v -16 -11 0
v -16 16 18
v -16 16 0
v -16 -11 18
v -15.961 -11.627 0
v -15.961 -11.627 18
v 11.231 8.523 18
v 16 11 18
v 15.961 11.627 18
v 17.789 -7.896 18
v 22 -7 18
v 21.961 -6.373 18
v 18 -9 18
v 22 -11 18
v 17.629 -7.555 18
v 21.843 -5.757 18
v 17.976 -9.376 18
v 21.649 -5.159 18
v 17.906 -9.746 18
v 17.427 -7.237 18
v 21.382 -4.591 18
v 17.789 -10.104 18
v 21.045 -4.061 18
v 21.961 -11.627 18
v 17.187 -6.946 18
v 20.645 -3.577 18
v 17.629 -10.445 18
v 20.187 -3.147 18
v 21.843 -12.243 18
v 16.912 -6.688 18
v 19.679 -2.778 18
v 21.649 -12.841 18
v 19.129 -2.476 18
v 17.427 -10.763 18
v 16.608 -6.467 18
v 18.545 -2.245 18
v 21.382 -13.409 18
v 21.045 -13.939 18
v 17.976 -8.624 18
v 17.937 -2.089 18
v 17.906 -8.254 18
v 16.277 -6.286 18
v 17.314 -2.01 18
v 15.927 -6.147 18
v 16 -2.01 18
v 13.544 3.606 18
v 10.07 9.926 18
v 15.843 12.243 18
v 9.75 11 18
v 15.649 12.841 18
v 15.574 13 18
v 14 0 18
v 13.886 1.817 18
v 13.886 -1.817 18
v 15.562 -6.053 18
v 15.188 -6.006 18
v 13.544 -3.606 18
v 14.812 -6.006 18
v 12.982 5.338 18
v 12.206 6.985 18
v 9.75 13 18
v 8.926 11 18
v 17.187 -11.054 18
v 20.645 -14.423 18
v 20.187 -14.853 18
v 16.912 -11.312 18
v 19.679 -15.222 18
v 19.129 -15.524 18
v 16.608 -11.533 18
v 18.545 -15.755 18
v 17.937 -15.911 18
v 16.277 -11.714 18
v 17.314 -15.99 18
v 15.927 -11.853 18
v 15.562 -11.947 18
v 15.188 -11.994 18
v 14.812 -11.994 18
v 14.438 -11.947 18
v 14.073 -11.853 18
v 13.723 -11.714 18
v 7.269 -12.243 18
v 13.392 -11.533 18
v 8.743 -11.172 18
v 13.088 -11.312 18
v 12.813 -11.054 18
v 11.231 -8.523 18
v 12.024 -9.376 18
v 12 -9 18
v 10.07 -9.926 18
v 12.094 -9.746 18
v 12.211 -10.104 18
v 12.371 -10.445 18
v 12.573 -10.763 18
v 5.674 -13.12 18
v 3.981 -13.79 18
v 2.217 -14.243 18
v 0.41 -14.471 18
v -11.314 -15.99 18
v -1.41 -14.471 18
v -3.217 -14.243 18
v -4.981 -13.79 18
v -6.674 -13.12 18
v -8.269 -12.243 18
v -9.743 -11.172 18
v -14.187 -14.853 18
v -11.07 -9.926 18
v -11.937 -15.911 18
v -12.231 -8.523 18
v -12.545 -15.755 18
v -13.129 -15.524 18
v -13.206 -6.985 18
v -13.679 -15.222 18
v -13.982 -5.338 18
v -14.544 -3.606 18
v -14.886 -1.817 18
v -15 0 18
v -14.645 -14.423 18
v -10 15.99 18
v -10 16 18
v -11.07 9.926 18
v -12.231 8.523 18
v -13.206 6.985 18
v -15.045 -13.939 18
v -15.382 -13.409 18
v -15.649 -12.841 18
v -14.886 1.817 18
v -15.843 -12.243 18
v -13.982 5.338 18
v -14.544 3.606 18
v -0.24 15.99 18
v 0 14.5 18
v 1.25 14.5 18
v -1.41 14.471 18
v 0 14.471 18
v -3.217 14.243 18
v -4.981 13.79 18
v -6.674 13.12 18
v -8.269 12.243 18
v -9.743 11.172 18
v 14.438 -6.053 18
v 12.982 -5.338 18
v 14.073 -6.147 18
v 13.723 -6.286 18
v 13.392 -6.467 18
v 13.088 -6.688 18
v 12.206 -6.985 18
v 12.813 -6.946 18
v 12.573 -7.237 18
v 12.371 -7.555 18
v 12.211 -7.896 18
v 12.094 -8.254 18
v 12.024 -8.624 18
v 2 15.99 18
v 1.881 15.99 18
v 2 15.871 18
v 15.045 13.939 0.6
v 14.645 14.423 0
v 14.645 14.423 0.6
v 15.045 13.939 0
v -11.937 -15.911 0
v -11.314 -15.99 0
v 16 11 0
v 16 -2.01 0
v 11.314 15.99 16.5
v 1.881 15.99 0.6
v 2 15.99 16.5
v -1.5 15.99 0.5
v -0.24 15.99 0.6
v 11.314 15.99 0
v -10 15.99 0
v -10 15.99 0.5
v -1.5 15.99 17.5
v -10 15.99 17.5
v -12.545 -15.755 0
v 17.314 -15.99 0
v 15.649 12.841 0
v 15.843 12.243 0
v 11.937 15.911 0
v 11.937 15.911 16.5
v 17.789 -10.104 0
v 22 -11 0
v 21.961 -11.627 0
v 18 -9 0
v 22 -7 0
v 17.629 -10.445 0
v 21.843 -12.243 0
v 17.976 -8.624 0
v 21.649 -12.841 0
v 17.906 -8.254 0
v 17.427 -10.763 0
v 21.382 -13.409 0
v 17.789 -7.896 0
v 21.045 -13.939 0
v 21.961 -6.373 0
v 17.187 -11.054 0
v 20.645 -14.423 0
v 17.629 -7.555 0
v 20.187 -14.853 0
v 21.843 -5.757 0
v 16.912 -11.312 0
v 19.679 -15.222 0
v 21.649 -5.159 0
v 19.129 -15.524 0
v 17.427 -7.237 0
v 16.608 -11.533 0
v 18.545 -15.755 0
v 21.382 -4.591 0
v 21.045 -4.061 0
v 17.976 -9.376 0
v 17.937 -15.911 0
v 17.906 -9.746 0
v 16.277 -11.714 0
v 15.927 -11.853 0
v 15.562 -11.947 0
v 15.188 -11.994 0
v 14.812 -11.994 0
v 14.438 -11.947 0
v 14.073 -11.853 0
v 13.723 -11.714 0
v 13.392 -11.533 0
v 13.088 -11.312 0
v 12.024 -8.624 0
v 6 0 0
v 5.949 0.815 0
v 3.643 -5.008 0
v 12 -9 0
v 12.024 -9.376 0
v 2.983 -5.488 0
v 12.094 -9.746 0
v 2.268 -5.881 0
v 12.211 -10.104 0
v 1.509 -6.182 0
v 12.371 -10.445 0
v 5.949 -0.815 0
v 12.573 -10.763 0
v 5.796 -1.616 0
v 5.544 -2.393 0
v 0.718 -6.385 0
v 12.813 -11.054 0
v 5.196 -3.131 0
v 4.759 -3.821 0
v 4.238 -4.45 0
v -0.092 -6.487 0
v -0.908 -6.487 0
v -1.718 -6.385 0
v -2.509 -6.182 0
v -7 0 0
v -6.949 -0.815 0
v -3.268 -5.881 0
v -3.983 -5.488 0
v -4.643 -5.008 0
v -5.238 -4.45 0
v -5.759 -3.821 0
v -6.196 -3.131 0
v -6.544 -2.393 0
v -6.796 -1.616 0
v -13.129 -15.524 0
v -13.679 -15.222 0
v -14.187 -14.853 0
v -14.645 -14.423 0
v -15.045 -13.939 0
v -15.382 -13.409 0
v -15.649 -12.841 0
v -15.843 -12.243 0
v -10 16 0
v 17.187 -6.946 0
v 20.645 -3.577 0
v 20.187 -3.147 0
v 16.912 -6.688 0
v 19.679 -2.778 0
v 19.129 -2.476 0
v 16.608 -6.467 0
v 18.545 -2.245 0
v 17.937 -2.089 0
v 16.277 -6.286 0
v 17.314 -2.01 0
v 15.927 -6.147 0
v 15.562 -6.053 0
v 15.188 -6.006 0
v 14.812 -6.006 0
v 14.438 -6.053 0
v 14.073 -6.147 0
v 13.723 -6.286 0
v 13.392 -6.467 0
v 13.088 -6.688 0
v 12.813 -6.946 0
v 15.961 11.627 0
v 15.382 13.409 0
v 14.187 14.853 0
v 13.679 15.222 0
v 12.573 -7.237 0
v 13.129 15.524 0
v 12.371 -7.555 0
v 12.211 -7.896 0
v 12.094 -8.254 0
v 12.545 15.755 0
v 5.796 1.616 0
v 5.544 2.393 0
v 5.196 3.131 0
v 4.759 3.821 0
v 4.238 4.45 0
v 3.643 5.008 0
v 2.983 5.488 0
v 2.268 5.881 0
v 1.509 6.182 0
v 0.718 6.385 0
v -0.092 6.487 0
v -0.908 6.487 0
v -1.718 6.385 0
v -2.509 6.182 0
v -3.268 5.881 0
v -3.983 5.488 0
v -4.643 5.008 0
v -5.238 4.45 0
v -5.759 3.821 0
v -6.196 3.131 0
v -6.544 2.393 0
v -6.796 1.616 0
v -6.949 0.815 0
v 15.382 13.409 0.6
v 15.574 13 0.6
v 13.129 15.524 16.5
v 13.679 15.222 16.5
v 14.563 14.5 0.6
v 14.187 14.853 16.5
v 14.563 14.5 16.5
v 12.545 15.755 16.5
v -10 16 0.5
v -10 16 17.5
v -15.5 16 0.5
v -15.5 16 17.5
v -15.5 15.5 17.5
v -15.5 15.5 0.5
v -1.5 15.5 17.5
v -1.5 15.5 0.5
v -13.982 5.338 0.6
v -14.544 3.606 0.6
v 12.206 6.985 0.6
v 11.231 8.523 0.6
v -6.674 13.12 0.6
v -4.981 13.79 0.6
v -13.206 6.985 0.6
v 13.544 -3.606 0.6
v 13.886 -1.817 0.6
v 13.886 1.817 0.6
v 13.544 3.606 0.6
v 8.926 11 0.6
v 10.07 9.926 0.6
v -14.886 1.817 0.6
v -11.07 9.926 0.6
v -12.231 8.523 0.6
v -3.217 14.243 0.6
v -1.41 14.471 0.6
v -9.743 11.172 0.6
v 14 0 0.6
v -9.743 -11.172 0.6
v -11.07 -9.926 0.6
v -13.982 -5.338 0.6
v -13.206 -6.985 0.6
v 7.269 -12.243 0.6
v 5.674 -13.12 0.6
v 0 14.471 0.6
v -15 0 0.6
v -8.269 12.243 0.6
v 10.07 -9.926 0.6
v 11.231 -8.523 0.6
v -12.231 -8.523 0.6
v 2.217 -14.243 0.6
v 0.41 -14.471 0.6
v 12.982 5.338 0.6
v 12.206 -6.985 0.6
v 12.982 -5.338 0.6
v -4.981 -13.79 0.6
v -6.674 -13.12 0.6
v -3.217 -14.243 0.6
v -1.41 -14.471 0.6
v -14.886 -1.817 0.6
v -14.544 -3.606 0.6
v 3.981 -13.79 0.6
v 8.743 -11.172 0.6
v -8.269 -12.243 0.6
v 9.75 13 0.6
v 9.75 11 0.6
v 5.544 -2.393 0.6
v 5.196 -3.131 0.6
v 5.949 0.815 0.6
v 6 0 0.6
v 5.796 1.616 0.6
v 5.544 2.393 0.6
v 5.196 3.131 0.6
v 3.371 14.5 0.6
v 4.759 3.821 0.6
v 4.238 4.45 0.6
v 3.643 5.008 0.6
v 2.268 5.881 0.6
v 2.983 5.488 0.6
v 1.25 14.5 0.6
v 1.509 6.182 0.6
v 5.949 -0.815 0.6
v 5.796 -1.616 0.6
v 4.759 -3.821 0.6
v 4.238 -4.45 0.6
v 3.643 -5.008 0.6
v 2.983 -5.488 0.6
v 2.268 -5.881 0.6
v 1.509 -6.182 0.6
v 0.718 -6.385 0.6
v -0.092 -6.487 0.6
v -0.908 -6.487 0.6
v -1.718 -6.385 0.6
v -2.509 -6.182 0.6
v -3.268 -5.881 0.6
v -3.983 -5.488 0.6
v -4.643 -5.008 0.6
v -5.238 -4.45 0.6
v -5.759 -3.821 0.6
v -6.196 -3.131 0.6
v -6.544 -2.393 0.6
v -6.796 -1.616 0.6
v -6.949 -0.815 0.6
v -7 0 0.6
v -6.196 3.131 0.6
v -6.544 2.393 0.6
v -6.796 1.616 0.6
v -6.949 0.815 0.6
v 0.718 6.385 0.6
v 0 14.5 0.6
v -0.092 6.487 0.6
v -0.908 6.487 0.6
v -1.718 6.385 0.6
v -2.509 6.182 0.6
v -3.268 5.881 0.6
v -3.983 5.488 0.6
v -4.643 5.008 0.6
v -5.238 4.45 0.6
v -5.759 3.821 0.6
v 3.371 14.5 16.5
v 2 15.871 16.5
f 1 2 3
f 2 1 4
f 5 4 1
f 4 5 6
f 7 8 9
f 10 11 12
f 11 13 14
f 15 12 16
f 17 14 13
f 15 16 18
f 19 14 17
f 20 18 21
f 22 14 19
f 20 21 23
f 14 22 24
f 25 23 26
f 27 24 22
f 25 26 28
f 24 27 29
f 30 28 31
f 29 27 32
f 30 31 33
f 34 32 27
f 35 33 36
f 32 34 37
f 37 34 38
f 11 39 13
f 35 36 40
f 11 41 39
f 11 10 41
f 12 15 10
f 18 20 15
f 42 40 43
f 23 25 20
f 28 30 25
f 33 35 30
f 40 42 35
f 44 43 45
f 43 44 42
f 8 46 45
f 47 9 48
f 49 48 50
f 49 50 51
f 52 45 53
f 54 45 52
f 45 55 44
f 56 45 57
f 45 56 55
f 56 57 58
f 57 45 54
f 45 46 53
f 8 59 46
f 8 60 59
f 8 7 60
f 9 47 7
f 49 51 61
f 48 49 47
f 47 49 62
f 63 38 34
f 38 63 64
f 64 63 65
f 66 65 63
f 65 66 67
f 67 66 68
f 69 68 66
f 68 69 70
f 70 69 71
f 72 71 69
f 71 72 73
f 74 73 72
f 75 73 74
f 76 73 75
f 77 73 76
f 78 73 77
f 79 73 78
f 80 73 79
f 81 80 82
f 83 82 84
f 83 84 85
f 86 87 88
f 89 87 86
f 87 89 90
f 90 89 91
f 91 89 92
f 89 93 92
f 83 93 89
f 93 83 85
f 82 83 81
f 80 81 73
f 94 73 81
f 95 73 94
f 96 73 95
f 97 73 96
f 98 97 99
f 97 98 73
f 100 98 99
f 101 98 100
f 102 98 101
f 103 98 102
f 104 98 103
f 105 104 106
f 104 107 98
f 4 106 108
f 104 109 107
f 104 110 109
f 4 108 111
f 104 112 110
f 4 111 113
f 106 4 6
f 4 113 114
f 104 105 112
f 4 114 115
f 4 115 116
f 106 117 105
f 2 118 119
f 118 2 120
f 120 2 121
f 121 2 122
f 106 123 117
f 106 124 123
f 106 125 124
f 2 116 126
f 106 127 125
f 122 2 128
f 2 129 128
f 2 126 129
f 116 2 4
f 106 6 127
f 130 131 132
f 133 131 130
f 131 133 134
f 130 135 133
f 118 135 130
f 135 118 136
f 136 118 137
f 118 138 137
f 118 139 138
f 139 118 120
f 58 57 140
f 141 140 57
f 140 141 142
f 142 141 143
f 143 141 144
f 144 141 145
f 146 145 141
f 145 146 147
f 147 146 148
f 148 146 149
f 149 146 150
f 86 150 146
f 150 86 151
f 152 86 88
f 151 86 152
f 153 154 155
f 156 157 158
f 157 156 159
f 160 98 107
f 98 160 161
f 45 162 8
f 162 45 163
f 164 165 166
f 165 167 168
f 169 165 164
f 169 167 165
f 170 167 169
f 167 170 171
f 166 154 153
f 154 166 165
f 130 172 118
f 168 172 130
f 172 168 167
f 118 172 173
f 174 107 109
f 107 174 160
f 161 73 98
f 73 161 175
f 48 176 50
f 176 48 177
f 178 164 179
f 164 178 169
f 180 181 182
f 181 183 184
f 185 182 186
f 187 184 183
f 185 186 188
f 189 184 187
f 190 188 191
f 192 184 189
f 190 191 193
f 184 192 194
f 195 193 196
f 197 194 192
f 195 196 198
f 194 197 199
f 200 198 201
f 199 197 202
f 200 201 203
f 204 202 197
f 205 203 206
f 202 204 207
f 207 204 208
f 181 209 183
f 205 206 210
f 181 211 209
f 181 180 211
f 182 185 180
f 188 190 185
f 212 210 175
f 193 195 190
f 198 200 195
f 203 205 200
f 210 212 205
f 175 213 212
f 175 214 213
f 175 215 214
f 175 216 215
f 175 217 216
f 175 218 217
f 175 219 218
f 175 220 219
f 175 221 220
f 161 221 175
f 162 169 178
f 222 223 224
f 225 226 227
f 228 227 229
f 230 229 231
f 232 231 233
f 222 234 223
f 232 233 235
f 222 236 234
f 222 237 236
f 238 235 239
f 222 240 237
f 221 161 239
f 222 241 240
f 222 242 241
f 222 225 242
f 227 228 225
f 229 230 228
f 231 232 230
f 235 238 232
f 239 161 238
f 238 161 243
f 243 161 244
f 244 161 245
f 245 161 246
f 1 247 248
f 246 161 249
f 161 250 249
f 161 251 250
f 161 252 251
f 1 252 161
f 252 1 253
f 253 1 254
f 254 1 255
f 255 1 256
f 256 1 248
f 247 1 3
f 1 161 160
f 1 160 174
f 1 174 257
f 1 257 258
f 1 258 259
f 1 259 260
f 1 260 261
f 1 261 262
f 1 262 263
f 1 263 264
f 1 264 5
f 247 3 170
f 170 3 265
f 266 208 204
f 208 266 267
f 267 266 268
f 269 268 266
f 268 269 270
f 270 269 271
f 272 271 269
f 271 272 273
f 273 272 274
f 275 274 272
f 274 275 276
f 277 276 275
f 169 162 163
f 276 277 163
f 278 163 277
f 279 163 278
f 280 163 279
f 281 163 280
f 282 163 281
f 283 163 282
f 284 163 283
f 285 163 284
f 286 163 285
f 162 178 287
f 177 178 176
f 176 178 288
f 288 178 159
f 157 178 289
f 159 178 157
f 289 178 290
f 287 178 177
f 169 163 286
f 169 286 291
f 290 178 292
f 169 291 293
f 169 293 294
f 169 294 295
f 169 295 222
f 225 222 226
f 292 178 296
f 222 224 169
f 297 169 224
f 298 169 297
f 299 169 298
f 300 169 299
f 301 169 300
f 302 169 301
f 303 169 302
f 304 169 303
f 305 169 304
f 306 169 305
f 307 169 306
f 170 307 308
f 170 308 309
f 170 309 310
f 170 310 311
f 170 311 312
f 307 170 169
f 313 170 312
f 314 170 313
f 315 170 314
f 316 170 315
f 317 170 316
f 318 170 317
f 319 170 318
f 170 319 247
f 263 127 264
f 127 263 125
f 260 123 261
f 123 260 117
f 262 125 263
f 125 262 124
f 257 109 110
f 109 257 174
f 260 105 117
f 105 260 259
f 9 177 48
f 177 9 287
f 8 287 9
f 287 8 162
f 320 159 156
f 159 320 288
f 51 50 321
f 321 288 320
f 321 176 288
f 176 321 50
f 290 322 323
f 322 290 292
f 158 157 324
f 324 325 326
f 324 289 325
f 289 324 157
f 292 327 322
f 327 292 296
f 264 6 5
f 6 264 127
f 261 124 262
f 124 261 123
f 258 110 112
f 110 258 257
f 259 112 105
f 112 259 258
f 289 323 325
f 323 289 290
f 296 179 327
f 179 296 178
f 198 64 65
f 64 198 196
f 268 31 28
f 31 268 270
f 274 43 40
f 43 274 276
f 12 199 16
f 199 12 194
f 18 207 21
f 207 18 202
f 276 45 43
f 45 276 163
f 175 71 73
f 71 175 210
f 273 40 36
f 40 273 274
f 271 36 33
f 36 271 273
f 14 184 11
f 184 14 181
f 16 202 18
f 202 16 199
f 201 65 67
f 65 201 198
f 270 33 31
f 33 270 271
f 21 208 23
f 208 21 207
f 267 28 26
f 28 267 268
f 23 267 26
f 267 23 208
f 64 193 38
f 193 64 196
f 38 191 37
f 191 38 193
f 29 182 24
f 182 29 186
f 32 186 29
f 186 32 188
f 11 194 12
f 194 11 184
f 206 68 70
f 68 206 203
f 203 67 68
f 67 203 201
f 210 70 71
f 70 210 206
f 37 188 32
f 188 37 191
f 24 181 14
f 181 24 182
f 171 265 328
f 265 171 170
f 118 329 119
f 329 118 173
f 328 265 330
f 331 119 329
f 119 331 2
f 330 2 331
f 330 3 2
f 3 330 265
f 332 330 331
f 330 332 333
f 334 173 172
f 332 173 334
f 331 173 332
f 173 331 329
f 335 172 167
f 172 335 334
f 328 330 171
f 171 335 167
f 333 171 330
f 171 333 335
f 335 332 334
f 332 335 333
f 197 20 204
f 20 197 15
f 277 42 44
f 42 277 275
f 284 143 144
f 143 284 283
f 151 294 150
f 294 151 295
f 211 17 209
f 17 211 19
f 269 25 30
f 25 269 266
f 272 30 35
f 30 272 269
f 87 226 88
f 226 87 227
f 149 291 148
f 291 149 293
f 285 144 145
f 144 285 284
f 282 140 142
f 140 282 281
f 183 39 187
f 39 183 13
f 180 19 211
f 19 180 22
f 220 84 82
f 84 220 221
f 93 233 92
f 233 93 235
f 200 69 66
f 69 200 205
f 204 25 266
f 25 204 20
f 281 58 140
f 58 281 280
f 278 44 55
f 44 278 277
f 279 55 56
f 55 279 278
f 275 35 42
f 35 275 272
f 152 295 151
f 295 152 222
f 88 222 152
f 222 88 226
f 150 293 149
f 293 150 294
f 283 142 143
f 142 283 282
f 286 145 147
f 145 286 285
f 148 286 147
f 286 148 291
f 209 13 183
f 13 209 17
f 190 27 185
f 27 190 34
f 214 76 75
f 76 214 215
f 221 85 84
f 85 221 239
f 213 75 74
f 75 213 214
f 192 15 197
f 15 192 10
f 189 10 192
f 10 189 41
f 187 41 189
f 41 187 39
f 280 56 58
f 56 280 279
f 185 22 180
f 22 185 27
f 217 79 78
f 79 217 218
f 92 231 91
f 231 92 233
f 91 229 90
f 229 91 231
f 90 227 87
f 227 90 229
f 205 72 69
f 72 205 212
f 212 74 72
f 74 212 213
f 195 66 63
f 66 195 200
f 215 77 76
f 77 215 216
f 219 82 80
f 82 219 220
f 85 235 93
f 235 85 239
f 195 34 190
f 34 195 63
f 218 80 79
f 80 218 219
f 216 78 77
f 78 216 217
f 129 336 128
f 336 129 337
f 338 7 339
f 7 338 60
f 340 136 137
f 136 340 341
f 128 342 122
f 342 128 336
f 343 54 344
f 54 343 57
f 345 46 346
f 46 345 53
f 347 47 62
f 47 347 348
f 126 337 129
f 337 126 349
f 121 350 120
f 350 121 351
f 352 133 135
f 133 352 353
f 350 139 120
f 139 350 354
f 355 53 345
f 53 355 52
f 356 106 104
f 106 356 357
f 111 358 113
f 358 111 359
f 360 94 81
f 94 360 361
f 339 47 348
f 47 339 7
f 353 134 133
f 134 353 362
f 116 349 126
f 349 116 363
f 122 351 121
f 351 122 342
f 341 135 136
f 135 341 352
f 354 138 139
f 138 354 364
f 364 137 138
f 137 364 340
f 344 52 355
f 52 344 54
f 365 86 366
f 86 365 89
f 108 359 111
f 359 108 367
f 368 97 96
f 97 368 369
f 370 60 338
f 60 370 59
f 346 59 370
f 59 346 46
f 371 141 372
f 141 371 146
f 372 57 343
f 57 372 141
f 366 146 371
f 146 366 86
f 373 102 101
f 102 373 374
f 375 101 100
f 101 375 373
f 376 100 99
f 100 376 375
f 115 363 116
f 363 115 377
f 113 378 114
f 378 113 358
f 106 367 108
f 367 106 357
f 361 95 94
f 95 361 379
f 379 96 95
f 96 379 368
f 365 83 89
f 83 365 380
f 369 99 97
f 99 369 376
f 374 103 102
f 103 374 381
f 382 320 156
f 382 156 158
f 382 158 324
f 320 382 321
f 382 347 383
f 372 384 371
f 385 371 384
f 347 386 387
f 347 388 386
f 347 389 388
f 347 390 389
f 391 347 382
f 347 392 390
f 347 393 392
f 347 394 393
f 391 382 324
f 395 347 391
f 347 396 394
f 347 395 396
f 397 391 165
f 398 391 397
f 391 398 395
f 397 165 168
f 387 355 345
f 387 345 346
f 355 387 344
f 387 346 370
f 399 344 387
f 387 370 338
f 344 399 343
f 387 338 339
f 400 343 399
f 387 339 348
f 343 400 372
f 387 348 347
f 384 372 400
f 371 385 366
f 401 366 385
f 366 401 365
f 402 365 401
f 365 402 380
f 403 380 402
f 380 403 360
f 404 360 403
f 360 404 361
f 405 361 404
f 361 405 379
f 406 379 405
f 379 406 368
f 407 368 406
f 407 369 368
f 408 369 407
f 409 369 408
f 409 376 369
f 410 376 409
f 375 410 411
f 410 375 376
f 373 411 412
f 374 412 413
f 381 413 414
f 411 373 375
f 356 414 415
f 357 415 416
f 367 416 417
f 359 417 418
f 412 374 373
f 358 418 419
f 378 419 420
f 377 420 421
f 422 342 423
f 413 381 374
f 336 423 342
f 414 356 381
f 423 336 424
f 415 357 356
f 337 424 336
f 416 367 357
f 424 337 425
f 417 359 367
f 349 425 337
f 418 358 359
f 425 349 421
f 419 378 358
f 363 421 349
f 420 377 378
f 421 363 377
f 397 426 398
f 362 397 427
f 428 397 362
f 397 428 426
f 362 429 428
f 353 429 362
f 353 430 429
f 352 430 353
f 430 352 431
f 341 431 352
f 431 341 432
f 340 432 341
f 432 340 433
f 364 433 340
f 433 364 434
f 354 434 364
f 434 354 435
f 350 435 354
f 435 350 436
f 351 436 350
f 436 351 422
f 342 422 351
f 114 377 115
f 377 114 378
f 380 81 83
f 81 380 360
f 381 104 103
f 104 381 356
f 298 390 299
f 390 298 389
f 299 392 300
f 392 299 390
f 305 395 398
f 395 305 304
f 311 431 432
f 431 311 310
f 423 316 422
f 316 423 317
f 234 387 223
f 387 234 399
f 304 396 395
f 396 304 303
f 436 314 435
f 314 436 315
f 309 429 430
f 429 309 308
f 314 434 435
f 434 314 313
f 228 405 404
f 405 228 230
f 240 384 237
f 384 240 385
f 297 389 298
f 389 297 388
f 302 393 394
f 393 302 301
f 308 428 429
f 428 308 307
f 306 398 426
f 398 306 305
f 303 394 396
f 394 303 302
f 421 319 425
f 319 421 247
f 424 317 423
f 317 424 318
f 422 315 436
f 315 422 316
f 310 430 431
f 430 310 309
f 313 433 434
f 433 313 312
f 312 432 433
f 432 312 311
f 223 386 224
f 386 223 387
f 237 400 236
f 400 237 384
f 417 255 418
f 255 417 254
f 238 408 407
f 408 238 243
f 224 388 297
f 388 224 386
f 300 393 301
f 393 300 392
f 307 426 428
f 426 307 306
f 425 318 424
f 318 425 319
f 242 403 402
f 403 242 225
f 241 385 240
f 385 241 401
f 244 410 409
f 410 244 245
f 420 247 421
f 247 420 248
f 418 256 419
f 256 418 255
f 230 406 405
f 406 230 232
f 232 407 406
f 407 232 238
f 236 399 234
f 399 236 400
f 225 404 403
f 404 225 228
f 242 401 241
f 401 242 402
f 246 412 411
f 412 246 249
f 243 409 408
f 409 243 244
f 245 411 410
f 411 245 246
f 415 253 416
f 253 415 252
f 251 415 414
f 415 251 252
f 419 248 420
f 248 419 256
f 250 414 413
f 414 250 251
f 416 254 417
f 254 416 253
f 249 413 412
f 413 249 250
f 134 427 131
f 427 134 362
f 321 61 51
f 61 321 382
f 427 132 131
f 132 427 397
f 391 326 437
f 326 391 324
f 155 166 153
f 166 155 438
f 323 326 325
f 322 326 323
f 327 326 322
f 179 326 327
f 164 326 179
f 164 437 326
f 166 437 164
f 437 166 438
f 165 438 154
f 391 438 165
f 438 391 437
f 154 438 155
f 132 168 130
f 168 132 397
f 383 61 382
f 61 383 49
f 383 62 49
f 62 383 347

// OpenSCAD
$fn = 50;


difference() {
	union() {
		hull() {
			translate(v = [-11.0000000000, 11.0000000000, 0]) {
				cylinder(h = 18, r = 5);
			}
			translate(v = [11.0000000000, 11.0000000000, 0]) {
				cylinder(h = 18, r = 5);
			}
			translate(v = [-11.0000000000, -11.0000000000, 0]) {
				cylinder(h = 18, r = 5);
			}
			translate(v = [11.0000000000, -11.0000000000, 0]) {
				cylinder(h = 18, r = 5);
			}
		}
		translate(v = [7.5000000000, -9.0000000000, 0]) {
			hull() {
				translate(v = [-9.5000000000, 2.0000000000, 0]) {
					cylinder(h = 18, r = 5);
				}
				translate(v = [9.5000000000, 2.0000000000, 0]) {
					cylinder(h = 18, r = 5);
				}
				translate(v = [-9.5000000000, -2.0000000000, 0]) {
					cylinder(h = 18, r = 5);
				}
				translate(v = [9.5000000000, -2.0000000000, 0]) {
					cylinder(h = 18, r = 5);
				}
			}
		}
		translate(v = [-16.0000000000, 10.0000000000, 0]) {
			cube(size = [6, 6, 18]);
		}
	}
	union() {
		translate(v = [-15.5000000000, 15.5000000000, 0.5000000000]) {
			cube(size = [14, 0.5000000000, 17.0000000000]);
		}
		translate(v = [15.0000000000, -9.0000000000, -50.0000000000]) {
			cylinder(h = 100, r = 3.0000000000);
		}
		translate(v = [-0.5000000000, 0.0000000000, 0.6000000000]) {
			cylinder(h = 20.4000000000, r = 14.5000000000);
		}
		translate(v = [-0.5000000000, 0.0000000000, -9.0000000000]) {
			cylinder(h = 18, r = 6.5000000000);
		}
		translate(v = [0.0000000000, 13.0000000000, 0.6000000000]) {
			cube(size = [16.0000000000, 1.5000000000, 20.4000000000]);
		}
		translate(v = [2.0000000000, 13.0000000000, 16.5000000000]) {
			cube(size = [14.0000000000, 4.5000000000, 1.5000000000]);
		}
		translate(v = [-3.0000000000, 18.7500000000, 0.6000000000]) {
			rotate(a = [0, 0, -45]) {
				cube(size = [10, 1.5000000000, 20.4000000000]);
			}
		}
		translate(v = [2.2500000000, 11.0000000000, 0.6000000000]) {
			cube(size = [7.5000000000, 2, 17.4000000000]);
		}
	}
}
